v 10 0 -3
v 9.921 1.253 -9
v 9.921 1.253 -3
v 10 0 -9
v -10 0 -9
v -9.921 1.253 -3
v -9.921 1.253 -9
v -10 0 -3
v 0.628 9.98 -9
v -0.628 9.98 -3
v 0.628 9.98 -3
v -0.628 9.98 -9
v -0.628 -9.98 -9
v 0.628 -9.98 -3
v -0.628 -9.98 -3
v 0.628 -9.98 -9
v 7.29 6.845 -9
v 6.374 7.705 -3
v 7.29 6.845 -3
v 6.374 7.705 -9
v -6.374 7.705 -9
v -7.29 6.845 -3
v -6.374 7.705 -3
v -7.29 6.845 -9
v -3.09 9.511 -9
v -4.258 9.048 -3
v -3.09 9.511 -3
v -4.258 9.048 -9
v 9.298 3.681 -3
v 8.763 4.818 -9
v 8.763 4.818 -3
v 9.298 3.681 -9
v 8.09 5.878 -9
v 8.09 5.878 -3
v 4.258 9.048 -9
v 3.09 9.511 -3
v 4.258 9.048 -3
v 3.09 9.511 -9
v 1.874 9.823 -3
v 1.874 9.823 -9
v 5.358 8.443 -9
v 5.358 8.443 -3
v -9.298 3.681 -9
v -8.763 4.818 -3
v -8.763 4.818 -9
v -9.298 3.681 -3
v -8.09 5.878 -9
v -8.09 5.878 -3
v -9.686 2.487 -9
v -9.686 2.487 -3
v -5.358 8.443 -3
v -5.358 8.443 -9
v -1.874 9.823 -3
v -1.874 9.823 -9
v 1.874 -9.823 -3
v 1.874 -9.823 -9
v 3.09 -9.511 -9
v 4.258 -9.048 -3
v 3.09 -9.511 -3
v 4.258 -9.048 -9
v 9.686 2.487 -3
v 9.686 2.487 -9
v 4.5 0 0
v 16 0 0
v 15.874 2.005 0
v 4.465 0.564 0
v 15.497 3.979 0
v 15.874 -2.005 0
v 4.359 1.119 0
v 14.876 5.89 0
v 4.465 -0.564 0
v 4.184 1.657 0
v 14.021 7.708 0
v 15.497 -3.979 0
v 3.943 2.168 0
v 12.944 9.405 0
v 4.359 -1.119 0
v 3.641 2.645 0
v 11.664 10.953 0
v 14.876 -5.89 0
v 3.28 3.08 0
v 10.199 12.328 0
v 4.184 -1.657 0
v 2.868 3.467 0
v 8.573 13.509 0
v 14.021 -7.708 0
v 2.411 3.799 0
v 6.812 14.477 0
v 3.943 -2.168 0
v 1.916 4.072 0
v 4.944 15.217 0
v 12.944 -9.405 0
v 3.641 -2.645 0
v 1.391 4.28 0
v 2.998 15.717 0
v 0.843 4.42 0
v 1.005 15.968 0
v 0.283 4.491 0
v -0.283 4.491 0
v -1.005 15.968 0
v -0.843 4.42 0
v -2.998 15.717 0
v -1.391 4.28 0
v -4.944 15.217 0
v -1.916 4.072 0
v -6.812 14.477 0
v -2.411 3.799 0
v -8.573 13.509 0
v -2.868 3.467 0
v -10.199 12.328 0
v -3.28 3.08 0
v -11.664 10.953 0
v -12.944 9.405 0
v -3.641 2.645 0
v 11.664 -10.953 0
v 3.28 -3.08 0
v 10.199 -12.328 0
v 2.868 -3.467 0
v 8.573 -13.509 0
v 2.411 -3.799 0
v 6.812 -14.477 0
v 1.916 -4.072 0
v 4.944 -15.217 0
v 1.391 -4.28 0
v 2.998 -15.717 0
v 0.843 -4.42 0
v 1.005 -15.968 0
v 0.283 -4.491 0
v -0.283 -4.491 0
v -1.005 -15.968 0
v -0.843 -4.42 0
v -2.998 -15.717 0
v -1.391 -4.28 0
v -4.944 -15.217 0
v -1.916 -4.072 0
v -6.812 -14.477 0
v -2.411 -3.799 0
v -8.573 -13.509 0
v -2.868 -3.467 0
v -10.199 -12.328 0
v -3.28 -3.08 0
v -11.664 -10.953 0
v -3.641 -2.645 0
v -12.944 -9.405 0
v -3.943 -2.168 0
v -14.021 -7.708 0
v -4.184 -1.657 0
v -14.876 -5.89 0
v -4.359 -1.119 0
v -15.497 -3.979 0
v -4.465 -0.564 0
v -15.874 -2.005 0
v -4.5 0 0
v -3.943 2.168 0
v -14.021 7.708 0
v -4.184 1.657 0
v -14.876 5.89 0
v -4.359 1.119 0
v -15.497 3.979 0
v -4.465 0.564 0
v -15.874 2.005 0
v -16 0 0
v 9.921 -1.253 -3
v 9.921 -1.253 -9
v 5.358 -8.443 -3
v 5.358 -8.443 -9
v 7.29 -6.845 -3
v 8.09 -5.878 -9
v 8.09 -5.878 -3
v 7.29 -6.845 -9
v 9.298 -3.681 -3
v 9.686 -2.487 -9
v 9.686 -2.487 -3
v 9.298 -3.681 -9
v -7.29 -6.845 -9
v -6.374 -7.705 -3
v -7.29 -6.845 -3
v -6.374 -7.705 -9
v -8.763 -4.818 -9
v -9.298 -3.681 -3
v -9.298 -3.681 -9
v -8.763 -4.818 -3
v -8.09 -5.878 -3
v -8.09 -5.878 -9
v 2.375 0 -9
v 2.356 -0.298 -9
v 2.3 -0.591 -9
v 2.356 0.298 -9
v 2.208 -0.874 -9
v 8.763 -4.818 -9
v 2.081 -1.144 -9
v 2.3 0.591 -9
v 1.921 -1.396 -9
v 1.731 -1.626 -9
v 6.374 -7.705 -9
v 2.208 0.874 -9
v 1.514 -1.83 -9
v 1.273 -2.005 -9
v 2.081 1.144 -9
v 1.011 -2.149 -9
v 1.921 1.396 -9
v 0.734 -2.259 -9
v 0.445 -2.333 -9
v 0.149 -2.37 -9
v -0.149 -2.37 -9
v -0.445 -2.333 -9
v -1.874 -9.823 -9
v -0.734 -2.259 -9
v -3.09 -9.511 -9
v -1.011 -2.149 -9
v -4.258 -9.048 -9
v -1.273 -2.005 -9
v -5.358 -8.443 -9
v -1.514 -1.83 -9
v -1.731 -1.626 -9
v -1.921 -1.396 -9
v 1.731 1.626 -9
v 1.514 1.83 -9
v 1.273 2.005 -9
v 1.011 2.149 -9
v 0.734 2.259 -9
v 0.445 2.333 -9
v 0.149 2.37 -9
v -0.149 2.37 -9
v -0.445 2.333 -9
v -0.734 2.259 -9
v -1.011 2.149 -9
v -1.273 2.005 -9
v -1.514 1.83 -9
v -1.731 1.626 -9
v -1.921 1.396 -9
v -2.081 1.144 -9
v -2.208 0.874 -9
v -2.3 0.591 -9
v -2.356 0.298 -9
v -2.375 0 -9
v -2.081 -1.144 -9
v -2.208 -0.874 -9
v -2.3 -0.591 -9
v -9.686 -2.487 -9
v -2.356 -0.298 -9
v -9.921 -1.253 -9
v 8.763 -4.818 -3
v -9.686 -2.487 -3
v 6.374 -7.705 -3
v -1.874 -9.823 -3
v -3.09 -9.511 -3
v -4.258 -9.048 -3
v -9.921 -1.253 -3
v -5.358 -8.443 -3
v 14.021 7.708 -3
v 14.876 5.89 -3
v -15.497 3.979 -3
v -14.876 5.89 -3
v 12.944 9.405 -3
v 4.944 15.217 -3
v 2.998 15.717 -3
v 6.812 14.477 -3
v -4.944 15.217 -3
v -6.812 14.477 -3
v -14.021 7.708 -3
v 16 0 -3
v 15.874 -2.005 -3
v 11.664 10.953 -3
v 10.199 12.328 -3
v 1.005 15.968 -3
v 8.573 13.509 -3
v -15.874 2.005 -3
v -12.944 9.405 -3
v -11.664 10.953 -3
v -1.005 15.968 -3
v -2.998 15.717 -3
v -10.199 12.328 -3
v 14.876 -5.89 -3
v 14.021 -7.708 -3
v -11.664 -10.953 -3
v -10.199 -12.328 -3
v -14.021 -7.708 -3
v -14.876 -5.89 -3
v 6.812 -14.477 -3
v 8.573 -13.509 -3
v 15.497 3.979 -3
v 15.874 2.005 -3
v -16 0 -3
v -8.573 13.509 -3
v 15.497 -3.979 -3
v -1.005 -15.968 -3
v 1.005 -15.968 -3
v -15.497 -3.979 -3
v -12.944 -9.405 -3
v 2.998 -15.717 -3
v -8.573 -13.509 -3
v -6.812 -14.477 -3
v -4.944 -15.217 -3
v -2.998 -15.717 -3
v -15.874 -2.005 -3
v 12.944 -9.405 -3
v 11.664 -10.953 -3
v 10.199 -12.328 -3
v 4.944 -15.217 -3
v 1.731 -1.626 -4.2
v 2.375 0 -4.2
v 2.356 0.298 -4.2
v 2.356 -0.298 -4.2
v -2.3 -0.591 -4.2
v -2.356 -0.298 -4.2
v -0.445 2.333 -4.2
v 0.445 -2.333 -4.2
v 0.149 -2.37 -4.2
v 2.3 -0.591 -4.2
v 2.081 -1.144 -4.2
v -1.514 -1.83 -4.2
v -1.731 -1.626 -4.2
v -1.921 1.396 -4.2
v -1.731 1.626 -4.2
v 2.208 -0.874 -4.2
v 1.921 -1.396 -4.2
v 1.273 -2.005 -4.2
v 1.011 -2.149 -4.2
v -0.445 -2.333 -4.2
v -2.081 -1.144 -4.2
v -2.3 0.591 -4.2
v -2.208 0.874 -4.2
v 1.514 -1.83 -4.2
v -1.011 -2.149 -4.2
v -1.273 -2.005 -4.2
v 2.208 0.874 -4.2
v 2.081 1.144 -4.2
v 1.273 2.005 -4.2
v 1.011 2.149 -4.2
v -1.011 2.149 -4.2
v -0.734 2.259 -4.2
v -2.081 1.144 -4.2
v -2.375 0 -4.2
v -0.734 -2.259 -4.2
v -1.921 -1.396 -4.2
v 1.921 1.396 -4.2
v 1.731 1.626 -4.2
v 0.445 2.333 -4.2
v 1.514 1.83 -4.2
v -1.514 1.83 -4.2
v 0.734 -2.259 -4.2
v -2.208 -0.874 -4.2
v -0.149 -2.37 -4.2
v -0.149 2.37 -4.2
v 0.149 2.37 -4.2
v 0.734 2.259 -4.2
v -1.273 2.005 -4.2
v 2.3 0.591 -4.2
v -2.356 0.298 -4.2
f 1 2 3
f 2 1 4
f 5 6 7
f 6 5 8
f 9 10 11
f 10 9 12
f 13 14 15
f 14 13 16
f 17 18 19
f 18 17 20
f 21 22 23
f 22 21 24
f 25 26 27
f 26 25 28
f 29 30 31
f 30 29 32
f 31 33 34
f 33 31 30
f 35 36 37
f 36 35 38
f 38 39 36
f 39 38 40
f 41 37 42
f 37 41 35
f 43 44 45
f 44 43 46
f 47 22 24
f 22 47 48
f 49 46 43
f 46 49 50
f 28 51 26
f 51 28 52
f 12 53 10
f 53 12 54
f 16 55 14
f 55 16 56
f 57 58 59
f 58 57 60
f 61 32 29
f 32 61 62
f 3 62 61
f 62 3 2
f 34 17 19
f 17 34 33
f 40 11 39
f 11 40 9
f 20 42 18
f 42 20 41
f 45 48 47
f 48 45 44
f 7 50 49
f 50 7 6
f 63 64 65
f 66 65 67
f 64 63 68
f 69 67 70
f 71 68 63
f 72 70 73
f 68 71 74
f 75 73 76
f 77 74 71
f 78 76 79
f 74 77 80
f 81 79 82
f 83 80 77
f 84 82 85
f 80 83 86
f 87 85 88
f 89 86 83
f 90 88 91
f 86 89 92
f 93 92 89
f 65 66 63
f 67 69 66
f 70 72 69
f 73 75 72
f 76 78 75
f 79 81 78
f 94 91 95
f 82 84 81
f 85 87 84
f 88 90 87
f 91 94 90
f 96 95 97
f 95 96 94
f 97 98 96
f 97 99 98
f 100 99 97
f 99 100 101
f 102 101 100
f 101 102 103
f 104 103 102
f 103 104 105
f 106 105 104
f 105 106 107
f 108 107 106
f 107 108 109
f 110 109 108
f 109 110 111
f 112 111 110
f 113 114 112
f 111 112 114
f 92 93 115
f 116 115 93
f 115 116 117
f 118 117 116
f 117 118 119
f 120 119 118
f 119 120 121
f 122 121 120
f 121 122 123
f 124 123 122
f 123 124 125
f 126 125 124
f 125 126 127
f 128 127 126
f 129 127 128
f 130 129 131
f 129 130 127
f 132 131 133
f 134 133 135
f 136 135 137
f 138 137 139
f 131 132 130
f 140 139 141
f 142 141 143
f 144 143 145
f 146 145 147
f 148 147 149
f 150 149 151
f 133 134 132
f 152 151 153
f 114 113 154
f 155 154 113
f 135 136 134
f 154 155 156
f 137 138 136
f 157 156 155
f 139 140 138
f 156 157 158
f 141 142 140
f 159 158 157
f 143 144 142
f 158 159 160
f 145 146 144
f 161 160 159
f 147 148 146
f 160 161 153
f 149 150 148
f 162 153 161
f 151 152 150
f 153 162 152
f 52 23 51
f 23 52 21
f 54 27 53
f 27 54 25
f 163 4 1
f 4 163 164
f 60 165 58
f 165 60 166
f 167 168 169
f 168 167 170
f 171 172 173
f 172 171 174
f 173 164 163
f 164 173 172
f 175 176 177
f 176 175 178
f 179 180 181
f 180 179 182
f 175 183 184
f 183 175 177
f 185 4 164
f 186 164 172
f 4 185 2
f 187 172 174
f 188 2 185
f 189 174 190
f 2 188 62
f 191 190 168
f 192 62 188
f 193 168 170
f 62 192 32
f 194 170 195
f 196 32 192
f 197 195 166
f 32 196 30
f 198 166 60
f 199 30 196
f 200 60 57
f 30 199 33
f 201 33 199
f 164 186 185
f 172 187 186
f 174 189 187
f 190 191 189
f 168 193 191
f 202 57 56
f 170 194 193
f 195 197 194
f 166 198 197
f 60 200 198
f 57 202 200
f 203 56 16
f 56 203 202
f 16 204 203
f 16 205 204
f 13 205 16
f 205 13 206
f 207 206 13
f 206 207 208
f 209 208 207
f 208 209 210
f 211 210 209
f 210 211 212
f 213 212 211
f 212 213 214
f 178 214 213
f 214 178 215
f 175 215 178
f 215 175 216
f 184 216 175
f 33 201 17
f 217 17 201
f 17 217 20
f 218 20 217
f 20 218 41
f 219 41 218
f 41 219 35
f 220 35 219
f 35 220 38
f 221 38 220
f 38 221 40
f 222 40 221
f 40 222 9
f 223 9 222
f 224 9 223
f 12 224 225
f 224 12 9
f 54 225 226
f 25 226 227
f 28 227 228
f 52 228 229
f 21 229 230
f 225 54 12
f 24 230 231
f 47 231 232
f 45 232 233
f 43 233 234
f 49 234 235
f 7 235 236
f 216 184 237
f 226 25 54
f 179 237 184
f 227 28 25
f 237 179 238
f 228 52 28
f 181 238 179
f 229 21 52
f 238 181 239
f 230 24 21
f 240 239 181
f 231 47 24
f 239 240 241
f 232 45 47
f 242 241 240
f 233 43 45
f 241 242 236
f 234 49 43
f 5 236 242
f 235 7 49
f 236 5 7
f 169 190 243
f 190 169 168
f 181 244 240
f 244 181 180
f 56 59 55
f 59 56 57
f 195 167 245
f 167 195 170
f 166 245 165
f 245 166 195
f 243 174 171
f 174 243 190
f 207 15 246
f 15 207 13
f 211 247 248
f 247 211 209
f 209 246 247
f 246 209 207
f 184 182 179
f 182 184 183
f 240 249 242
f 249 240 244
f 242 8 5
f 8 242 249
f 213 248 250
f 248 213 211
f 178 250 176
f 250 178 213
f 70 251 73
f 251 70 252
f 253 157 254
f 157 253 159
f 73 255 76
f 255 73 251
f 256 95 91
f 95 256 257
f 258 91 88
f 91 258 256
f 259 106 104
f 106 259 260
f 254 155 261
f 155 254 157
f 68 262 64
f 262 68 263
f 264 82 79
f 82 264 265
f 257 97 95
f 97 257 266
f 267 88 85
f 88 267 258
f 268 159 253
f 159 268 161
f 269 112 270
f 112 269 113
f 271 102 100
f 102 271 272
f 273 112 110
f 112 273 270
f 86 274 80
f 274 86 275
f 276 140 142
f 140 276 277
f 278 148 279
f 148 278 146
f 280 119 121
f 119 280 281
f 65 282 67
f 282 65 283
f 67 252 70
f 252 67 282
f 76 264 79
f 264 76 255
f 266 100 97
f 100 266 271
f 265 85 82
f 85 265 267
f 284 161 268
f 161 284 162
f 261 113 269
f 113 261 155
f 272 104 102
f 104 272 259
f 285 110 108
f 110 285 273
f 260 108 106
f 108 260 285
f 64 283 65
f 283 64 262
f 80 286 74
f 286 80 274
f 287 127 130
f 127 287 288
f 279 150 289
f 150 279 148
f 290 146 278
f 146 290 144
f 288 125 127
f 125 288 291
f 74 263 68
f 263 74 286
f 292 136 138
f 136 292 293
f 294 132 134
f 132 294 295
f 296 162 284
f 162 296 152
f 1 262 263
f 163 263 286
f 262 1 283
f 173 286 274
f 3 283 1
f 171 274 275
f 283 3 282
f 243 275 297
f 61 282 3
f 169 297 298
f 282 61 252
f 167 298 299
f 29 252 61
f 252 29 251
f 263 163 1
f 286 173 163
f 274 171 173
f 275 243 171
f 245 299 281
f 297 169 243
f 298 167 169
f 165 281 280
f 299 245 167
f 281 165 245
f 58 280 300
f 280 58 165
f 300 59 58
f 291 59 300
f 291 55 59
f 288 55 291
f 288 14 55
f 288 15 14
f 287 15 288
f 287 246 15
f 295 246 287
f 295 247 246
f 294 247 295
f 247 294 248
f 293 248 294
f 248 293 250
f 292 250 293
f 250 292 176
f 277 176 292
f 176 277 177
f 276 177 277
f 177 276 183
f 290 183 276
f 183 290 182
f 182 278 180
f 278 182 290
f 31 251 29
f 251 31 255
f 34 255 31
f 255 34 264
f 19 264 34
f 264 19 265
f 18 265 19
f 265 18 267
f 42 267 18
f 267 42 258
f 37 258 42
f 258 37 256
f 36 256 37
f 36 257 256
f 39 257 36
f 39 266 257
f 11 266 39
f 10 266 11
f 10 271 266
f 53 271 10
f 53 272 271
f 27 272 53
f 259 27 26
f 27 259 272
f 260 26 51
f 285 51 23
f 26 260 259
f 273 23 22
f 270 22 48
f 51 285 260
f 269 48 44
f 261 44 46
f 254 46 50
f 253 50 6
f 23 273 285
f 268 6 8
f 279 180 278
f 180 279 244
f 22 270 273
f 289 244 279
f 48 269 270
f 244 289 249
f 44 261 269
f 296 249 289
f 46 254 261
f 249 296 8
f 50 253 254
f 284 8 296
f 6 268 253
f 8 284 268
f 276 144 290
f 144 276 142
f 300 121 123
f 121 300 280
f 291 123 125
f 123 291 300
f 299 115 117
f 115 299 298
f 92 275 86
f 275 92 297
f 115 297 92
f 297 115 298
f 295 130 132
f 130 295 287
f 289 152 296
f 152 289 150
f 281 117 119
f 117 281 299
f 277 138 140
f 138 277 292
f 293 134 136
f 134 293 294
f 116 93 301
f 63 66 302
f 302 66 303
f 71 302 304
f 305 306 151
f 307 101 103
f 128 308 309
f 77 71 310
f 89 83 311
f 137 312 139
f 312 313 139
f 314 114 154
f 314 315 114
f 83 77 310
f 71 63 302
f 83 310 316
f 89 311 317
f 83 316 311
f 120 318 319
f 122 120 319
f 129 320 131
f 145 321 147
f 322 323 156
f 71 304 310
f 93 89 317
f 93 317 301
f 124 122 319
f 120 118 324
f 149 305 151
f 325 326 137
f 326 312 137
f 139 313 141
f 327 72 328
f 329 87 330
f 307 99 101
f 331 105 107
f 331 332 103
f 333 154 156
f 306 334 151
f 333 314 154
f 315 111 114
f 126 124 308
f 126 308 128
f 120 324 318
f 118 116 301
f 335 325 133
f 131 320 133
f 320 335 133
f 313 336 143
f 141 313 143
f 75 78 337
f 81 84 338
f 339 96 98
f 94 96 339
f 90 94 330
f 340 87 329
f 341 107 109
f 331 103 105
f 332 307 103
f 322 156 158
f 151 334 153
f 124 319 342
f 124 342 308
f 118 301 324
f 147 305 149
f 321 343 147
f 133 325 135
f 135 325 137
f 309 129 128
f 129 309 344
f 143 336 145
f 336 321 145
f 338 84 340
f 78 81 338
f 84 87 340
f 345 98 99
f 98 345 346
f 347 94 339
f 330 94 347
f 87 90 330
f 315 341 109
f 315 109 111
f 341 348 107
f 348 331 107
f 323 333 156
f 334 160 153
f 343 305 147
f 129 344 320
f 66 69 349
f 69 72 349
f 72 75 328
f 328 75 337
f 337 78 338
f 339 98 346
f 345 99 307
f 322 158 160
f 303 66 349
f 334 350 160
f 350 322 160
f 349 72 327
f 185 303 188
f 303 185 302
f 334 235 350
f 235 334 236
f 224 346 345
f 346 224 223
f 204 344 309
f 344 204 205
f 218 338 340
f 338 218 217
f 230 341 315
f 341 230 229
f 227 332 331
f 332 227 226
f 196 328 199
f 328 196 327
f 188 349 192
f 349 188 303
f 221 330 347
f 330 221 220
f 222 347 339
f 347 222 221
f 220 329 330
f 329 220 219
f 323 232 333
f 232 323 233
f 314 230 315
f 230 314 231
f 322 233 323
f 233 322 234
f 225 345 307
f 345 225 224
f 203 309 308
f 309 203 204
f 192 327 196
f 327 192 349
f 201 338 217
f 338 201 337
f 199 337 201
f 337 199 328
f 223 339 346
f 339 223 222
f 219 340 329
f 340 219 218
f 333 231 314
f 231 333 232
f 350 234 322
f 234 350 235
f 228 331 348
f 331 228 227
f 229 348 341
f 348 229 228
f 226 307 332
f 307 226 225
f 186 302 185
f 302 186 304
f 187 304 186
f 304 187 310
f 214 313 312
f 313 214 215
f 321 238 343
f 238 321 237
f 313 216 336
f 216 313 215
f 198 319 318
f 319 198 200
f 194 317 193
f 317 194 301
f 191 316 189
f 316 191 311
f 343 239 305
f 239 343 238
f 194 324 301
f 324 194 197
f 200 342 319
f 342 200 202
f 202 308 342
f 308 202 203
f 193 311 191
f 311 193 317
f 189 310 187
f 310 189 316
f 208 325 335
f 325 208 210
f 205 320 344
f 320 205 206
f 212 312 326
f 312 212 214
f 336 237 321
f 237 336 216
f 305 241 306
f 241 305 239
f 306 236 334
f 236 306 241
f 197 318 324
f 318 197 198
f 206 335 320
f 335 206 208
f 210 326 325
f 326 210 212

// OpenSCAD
$fn = 50;


difference() {
	union() {
		translate(v = [0, 0, -9.0000000000]) {
			cylinder(h = 9, r = 10.0000000000);
		}
		translate(v = [0, 0, -3.0000000000]) {
			cylinder(h = 3, r = 16.0000000000);
		}
	}
	union() {
		translate(v = [0, 0, 0]) {
			rotate(a = [0, 0, 0]) {
				difference() {
					union() {
						#translate(v = [0, 0, -9.0000000000]) {
							cylinder(h = 9, r = 2.2500000000);
						}
						#translate(v = [0, 0, -4.2000000000]) {
							cylinder(h = 4.2000000000, r = 10.0000000000, r1 = 2.3750000000, r2 = 4.5000000000);
						}
						#translate(v = [0, 0, -9.0000000000]) {
							cylinder(h = 9, r = 2.3750000000);
						}
						#translate(v = [0, 0, -9.0000000000]) {
							cylinder(h = 9, r = 2.2500000000);
						}
					}
					union();
				}
			}
		}
	}
}
